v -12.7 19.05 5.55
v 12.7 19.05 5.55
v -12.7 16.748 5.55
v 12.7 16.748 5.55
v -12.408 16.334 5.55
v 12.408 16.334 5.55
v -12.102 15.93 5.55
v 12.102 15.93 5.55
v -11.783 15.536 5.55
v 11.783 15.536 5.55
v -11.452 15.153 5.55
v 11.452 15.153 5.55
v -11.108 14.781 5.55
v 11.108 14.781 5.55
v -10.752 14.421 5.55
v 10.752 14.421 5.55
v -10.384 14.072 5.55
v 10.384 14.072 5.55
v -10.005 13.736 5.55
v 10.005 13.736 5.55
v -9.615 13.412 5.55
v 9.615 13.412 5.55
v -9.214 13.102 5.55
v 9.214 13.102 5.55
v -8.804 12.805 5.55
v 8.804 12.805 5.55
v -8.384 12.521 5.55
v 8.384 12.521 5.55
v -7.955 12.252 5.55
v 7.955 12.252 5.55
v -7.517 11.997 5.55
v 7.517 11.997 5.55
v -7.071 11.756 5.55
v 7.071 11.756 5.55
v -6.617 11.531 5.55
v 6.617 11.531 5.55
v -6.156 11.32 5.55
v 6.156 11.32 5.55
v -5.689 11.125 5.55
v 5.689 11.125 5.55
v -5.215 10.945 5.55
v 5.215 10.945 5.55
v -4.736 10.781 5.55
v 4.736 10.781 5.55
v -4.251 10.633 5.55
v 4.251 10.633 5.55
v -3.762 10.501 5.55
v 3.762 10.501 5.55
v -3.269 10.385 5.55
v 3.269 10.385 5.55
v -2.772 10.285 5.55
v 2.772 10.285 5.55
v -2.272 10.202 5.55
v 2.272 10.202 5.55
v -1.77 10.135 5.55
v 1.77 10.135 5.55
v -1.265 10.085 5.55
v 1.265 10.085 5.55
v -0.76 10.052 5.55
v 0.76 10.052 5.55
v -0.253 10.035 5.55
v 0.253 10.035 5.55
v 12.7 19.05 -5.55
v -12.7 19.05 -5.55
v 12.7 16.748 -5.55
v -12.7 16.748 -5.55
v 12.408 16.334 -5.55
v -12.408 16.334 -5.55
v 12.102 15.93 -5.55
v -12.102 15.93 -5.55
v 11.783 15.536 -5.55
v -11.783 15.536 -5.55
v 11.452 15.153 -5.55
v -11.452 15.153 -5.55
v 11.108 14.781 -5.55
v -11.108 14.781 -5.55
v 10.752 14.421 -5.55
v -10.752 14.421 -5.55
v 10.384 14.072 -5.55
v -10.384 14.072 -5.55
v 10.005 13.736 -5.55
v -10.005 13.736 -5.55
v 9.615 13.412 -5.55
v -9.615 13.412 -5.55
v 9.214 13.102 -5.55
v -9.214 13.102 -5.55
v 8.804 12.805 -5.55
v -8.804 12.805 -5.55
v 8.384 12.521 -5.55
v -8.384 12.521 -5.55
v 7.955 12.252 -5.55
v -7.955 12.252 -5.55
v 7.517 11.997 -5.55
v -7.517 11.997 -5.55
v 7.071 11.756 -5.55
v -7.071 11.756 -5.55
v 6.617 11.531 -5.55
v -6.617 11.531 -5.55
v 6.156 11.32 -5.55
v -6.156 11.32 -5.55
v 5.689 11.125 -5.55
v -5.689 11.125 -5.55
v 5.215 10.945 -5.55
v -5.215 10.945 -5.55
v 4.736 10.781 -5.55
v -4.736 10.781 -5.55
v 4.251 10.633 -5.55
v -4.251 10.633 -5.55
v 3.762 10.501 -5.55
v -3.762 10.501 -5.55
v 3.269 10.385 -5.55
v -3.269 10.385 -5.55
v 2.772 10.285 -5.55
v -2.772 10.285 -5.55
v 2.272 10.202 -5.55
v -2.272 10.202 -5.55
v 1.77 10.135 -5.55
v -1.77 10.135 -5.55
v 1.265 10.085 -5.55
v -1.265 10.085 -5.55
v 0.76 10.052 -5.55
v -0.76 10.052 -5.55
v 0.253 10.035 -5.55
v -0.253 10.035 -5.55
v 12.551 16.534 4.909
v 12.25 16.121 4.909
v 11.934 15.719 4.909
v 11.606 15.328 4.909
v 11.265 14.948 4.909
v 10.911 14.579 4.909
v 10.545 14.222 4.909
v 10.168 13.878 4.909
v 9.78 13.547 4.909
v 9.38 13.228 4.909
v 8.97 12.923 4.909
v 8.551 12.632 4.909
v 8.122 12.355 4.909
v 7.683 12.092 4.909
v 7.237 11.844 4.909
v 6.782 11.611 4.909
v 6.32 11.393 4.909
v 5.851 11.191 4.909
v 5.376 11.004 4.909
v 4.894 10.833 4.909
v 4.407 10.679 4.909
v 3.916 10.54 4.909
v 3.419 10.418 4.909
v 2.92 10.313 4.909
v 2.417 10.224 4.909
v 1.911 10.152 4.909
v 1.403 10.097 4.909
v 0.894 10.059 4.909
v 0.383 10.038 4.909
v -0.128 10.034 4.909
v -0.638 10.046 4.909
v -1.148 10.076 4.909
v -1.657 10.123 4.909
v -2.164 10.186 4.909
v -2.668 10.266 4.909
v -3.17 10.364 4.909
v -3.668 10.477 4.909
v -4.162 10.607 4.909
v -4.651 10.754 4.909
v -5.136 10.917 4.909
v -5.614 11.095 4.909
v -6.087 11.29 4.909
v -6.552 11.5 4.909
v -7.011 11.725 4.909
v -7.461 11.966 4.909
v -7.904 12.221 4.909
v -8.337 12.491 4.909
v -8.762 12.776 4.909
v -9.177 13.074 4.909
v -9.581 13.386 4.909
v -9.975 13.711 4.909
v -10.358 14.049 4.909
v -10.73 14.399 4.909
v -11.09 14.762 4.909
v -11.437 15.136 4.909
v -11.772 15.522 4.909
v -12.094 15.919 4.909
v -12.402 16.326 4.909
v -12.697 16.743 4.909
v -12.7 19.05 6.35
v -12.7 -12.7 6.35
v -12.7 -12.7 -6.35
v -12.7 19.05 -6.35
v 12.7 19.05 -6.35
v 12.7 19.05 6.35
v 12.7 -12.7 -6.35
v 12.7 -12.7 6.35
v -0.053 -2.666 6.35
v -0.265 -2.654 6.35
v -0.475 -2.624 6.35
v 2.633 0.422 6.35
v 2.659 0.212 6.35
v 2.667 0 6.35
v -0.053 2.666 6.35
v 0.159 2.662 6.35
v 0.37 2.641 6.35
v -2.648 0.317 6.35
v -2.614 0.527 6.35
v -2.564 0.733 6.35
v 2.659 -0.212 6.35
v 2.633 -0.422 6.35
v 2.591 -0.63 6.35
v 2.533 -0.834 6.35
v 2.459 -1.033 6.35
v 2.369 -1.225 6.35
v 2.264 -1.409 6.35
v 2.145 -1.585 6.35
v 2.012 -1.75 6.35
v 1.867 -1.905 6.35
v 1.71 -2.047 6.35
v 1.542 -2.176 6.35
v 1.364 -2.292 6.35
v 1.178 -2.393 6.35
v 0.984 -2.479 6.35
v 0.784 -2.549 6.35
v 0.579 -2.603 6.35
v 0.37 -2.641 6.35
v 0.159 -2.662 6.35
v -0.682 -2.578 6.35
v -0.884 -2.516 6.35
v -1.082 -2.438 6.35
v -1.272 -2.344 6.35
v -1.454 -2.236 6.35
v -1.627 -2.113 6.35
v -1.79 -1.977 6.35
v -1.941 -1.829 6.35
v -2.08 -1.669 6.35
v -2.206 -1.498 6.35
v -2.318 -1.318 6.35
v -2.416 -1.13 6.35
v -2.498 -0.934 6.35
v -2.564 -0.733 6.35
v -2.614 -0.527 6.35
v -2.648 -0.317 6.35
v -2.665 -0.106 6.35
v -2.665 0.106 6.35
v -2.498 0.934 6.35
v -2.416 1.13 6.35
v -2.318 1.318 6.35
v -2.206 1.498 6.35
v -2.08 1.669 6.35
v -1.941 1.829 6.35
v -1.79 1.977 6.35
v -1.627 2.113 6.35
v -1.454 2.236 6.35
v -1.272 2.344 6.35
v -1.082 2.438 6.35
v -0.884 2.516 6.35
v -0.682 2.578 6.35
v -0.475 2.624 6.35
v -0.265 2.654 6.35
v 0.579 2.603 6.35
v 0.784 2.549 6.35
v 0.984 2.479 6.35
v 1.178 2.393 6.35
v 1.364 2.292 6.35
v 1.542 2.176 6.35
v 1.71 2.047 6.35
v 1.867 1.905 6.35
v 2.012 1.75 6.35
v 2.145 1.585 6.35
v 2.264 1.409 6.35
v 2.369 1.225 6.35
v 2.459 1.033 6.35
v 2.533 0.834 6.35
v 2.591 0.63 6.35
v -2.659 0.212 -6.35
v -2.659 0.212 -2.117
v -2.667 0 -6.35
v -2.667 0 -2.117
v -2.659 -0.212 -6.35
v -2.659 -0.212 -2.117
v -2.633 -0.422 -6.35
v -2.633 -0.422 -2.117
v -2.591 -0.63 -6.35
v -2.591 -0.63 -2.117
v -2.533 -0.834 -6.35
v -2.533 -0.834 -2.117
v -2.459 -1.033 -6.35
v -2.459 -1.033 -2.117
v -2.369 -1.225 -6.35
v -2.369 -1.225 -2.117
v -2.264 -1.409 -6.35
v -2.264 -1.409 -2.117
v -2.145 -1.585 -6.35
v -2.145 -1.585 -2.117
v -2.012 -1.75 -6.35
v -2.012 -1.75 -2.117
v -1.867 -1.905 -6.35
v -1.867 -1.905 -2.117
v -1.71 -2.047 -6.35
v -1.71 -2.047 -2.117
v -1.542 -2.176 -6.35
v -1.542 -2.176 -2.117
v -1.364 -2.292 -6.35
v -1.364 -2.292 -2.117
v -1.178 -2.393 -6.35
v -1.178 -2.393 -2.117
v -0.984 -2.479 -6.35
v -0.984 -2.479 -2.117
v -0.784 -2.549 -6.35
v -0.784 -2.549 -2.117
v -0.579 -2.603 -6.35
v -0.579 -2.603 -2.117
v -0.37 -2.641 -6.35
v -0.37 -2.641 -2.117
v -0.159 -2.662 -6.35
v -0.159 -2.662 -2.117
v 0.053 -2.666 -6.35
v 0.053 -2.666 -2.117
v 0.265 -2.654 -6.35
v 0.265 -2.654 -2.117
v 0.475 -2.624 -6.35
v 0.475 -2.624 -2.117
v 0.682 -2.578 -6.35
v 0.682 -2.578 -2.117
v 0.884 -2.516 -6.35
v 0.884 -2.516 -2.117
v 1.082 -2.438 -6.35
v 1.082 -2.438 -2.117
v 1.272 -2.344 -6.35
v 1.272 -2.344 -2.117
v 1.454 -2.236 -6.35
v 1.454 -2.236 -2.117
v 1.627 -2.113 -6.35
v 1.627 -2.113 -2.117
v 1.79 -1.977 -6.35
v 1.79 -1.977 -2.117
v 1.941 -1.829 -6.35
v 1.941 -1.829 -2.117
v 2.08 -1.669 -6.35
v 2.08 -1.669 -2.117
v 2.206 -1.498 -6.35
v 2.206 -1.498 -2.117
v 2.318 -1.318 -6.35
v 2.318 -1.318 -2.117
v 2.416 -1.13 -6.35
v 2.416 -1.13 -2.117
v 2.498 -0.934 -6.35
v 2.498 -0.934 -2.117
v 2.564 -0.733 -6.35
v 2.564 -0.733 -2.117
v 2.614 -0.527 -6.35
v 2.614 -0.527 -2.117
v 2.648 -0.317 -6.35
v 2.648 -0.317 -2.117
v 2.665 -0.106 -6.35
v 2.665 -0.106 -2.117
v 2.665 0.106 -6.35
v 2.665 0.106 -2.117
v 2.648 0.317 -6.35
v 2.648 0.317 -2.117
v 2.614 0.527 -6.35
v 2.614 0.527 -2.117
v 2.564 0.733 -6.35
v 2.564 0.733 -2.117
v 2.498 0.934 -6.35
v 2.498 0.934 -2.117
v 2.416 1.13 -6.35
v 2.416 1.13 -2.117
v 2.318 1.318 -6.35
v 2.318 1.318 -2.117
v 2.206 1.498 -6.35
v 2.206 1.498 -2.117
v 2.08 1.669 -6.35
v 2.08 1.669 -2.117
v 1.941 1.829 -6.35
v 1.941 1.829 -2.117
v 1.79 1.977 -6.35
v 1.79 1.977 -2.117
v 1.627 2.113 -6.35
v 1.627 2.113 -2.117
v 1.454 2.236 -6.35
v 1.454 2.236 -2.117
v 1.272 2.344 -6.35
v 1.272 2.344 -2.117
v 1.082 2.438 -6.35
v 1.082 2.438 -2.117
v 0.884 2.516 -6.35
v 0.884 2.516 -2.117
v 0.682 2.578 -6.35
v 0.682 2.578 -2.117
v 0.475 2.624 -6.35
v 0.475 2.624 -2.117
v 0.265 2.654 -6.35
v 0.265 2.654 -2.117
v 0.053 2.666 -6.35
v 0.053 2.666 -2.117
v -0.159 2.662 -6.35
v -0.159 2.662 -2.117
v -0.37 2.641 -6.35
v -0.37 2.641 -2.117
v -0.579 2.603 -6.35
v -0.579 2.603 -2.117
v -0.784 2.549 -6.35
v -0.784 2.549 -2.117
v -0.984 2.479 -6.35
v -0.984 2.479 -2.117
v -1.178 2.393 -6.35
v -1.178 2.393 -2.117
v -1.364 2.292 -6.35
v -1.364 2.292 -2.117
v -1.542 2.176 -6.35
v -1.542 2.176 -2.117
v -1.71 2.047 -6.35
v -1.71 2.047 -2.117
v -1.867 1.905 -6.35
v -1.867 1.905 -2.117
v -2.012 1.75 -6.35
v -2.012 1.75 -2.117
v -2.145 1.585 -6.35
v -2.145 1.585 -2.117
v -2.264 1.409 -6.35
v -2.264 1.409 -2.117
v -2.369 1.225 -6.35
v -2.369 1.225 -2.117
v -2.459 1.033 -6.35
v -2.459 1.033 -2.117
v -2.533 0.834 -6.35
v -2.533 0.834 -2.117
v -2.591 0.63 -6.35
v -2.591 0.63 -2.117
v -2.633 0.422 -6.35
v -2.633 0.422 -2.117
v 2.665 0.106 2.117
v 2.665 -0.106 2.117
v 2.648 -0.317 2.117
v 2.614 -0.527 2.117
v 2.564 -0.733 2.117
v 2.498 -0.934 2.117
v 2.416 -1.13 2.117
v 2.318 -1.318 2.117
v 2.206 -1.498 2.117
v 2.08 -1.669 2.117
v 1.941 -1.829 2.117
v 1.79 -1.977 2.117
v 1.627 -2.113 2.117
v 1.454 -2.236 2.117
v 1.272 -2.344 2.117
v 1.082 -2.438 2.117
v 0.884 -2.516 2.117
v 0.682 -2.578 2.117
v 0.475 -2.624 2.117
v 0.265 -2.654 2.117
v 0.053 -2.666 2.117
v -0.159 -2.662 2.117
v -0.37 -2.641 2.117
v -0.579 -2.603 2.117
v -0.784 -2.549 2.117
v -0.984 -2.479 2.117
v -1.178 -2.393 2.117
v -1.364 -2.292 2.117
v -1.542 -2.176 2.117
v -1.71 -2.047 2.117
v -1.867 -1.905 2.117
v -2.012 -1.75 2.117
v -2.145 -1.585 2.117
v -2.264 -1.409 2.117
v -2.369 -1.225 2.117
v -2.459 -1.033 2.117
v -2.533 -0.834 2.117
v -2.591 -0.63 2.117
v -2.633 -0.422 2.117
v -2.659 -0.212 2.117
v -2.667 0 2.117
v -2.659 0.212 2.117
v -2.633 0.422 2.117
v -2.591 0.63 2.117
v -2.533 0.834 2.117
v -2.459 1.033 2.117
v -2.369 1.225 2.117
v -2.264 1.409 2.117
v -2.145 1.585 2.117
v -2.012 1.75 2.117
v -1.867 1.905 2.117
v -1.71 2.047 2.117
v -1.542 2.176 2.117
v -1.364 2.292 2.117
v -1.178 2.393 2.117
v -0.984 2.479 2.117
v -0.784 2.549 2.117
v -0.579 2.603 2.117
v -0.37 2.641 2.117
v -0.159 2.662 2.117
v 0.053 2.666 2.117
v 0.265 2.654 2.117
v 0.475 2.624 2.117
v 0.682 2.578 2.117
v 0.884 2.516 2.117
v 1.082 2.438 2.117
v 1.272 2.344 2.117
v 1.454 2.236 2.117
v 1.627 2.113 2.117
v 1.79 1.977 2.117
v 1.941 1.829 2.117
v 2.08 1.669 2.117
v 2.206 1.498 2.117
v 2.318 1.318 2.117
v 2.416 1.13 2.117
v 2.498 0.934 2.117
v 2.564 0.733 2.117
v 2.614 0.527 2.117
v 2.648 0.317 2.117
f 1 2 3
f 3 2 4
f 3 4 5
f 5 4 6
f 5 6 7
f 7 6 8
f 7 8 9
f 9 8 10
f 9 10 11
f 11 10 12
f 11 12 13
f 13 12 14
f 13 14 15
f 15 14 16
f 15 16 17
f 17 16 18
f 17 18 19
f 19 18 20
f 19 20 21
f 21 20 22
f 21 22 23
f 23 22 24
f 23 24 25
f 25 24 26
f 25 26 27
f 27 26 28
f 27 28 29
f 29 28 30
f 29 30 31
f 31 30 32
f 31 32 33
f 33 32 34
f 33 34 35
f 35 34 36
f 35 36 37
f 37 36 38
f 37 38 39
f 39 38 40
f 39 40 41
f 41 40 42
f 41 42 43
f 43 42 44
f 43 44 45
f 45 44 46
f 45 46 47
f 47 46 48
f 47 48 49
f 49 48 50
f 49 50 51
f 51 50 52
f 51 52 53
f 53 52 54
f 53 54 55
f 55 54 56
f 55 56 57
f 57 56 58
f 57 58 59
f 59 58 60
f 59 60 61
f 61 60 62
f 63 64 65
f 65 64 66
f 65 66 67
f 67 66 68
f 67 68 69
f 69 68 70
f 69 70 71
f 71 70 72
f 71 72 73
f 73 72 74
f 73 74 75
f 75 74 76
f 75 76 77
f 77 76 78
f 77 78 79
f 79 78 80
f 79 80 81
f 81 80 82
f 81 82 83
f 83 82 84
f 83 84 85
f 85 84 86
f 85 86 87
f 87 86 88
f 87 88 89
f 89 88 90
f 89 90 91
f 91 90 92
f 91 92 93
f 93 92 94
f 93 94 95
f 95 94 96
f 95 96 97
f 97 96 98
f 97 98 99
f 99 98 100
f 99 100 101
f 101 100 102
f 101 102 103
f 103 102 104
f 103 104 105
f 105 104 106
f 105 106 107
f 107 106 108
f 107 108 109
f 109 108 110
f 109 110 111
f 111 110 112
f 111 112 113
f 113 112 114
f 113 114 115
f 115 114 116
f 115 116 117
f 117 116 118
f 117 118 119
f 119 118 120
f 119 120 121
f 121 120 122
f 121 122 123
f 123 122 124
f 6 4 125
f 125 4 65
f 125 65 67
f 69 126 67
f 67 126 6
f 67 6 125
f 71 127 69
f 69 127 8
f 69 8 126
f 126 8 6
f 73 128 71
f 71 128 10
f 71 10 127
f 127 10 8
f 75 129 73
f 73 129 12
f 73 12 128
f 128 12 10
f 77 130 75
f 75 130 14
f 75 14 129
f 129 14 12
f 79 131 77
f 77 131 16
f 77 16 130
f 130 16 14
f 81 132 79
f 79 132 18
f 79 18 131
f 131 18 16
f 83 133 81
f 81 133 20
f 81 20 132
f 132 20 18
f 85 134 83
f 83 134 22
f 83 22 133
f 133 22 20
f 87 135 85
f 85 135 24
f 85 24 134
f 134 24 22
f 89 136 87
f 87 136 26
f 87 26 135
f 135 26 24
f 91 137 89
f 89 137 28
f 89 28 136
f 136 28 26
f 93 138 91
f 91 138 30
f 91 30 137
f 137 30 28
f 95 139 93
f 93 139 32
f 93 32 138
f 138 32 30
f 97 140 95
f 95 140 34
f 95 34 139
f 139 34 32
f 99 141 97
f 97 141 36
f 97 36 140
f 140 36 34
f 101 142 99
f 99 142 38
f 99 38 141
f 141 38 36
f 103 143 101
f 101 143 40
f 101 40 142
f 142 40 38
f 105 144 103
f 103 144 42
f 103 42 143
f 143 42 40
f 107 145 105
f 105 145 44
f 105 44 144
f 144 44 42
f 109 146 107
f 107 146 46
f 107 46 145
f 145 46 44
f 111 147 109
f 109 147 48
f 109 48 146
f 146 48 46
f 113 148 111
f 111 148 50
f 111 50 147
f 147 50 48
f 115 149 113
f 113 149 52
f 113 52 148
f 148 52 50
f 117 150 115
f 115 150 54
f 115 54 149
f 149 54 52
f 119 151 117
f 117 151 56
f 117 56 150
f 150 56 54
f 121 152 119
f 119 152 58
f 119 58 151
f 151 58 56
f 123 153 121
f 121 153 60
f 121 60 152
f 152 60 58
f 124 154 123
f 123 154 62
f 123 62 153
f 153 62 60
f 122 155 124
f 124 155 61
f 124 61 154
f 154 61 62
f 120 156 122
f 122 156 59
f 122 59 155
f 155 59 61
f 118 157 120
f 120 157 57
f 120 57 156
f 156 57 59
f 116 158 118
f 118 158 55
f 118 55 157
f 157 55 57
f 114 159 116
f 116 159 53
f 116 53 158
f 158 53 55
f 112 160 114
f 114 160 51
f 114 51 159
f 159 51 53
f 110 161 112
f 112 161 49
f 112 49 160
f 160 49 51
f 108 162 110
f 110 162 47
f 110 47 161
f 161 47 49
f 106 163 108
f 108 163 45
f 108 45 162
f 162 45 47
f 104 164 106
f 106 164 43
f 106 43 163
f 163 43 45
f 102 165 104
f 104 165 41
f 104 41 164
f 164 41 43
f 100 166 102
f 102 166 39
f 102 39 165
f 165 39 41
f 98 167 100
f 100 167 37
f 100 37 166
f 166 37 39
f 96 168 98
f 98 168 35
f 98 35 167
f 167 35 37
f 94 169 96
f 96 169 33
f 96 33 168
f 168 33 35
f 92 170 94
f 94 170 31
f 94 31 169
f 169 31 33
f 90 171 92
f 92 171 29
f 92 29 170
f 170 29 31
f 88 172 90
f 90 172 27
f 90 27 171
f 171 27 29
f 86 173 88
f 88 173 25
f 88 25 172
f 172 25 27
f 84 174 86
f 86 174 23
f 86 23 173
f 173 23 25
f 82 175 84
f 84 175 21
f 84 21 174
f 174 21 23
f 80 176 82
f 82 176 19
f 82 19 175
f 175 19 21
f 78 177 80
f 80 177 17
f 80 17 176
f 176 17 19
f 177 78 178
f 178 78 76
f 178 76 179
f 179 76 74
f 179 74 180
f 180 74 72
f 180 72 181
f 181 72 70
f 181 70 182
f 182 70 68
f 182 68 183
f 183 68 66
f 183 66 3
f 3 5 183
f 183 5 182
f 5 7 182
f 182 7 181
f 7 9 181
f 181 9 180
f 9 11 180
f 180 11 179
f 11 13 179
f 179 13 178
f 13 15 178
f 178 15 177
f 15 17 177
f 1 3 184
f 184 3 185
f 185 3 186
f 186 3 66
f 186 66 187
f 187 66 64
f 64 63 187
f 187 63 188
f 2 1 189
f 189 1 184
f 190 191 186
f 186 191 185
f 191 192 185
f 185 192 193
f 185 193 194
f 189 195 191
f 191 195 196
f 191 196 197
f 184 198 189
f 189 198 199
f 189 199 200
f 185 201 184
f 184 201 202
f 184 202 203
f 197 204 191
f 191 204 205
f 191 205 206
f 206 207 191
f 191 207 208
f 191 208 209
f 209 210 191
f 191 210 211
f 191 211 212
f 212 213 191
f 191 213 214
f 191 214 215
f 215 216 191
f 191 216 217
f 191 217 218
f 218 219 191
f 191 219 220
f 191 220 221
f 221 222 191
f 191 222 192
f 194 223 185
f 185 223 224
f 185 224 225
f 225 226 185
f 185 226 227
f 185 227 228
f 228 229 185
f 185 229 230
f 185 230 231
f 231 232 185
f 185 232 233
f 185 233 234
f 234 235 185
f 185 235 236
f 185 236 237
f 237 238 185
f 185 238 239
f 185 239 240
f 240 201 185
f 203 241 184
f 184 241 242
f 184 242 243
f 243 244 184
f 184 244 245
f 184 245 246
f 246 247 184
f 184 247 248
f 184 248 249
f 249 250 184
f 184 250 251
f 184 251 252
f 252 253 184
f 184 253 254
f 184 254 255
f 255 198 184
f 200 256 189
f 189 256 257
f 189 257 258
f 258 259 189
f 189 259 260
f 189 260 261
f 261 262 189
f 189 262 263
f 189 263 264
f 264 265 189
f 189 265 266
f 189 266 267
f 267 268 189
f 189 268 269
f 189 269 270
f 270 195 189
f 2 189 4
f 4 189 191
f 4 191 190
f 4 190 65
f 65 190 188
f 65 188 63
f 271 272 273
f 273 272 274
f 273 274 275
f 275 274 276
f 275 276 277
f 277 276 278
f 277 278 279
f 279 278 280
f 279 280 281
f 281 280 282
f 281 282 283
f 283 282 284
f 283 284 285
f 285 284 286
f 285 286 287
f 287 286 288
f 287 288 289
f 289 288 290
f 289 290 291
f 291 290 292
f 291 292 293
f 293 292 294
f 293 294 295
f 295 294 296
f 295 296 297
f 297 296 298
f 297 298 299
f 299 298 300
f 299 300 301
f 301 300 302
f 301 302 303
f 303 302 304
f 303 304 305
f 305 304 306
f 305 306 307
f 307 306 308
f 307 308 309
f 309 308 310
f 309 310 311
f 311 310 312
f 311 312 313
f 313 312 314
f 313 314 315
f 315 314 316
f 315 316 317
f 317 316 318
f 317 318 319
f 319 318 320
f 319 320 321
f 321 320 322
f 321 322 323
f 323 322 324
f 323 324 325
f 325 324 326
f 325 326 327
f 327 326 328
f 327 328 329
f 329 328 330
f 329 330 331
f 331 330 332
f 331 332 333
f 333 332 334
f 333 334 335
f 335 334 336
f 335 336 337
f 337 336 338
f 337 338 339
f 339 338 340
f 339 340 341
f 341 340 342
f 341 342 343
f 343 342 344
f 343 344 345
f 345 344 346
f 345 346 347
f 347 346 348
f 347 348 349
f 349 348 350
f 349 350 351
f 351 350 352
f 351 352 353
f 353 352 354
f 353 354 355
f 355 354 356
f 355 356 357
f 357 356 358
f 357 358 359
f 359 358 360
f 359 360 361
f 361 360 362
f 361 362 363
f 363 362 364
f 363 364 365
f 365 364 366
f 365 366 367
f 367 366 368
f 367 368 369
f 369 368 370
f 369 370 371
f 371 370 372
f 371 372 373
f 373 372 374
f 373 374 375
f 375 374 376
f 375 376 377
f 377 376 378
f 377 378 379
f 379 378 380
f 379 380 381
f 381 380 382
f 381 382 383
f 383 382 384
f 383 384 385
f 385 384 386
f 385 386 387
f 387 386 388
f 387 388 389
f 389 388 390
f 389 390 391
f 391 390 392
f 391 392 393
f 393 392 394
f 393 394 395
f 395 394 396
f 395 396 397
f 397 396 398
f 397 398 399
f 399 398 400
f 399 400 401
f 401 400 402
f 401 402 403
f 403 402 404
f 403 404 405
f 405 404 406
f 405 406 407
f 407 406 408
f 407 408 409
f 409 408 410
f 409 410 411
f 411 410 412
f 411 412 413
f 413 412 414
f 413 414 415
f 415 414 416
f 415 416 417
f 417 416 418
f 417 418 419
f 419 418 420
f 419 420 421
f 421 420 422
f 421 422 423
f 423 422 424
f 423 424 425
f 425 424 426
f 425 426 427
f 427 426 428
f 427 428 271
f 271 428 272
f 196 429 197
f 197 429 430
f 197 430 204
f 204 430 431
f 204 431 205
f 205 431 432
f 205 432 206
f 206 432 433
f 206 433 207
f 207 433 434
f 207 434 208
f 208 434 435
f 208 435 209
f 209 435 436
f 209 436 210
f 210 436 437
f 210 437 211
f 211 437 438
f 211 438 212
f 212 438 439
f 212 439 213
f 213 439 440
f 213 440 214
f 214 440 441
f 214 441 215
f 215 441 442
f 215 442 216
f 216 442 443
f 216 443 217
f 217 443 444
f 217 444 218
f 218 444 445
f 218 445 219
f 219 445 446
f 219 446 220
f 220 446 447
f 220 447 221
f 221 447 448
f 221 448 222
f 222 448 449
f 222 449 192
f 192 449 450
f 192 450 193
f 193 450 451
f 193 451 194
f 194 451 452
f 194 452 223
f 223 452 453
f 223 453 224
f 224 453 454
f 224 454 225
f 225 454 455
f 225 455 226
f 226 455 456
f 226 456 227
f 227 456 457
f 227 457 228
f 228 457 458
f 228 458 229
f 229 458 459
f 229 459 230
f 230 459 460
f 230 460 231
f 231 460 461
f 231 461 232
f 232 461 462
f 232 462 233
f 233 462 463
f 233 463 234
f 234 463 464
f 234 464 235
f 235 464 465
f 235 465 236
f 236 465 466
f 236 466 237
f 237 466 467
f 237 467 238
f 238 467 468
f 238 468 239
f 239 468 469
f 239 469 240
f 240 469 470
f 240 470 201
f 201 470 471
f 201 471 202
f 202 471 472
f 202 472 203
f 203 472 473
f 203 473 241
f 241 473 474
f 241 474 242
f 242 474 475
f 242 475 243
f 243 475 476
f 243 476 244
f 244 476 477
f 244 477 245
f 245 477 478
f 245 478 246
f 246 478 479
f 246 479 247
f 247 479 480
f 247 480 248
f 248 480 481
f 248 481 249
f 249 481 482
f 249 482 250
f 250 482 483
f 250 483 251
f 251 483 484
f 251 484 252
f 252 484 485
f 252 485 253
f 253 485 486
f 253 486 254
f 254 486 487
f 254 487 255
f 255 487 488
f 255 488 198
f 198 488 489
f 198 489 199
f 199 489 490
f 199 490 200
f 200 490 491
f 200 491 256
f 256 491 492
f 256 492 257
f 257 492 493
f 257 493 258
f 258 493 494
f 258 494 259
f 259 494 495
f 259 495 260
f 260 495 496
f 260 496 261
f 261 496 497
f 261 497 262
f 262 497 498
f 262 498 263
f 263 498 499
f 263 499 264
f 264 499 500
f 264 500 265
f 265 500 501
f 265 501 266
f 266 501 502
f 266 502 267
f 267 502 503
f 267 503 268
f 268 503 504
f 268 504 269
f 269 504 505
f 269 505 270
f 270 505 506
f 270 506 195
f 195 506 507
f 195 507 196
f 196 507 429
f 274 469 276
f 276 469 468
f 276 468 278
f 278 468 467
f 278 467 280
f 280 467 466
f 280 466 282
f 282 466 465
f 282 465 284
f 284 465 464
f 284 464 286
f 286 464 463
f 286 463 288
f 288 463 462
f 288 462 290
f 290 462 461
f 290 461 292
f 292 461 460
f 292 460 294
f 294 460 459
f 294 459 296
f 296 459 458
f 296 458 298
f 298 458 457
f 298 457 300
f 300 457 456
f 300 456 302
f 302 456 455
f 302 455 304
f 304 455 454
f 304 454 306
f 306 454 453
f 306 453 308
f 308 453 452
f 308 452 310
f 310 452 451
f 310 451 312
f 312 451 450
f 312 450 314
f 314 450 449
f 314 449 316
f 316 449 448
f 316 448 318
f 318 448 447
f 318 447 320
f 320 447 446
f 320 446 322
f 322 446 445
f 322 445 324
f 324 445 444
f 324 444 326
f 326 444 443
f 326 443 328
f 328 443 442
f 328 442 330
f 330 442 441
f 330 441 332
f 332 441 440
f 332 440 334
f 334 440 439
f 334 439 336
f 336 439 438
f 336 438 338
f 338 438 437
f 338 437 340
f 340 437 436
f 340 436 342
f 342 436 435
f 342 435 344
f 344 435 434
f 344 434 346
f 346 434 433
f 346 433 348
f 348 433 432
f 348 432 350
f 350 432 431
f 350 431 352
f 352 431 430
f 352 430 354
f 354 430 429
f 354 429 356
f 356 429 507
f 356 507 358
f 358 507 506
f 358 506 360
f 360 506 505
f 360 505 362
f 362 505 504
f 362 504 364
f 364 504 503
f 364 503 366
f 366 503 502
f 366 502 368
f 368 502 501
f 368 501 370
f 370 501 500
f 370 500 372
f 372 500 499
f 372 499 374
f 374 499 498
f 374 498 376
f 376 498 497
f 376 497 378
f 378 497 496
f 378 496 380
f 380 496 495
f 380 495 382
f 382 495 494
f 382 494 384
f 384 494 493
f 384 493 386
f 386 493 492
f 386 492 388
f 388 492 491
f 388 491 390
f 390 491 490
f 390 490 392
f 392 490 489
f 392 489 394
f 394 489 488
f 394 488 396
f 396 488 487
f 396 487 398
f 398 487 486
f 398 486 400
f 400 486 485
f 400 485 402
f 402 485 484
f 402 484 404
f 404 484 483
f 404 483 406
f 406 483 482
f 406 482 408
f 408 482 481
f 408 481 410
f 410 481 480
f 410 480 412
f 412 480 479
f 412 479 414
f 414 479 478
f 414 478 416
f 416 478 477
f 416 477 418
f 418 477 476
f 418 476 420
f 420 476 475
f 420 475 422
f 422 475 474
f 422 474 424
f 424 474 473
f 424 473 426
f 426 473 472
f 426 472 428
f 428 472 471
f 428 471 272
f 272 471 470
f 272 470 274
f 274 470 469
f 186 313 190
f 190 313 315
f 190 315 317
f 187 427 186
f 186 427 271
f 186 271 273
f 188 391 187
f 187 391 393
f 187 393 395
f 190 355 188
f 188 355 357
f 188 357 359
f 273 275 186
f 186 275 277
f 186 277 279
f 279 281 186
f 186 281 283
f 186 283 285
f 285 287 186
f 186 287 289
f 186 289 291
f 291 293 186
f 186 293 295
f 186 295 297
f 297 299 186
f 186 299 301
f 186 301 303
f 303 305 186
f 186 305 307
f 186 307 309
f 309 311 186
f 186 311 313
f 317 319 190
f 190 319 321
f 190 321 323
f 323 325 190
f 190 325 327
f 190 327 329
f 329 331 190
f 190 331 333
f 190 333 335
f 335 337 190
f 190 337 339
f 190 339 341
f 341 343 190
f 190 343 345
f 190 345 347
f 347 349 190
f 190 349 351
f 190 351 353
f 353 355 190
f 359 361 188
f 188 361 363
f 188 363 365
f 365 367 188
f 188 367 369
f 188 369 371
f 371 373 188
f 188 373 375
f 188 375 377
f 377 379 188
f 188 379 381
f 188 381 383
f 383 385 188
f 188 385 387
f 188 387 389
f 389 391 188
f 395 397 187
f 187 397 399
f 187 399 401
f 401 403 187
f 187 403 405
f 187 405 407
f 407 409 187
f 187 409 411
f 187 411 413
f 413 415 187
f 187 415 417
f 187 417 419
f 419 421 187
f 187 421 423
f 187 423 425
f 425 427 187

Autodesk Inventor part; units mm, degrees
ref_plane "YZ Plane" through (0, 0, 0) normal (1, 0, 0) x (0, 1, 0)
ref_plane "XZ Plane" through (0, 0, 0) normal (0, 1, 0) x (-1, 0, 0)
ref_plane "XY Plane" through (0, 0, 0) normal (0, 0, 1) x (1, 0, 0)
sketch "Sketch3" plane through (0, 0, 0) normal (0, 0, 1) x (1, 0, 0)
  line L0 (-12.7, -19.05) -> (12.7, -19.05)
  line L1 (12.7, -19.05) -> (12.7, 19.05)
  line L2 (12.7, 19.05) -> (-12.7, 19.05)
  line L3 (-12.7, 19.05) -> (-12.7, -19.05)
  line L4 (-12.7, -19.05) -> (12.7, 19.05) construction
  line L5 (12.7, -19.05) -> (-12.7, 19.05) construction
  point P0 (0, 0)
  dimension "d0" = 25.4
  dimension "d1" = 38.1
extrude "Extrusion1" add sketch "Sketch3" along normal mid plane 12.7
sketch "Sketch4" plane through (0, 0, 6.35) normal (0, 0, 1) x (1, 0, 0)
  circle A0 centre (0, 0) radius 2.667
  dimension "d4" = 5.334
extrude "Extrusion2" cut sketch "Sketch4" against normal through all
sketch "Sketch5" plane through (-12.7, -19.05, 6.35) normal (-1, 0, 0) x (0, 0, 1)
  line L0 (3.175, 6.35) -> (50.8, 6.35) projected
  line L1 (-12.7, 38.1) -> (-12.7, 0) projected
  line L2 (0, 0) -> (0, 38.1) projected
  line L3 (-12.7, 0) -> (0, 0)
  line L4 (0, 0) -> (0, 6.35)
  line L5 (0, 6.35) -> (-12.7, 6.35)
  line L6 (-12.7, 6.35) -> (-12.7, 0)
  point P0 (-6.35, 19.05)
  point P1 (-12.7, 6.35)
  dimension "d9" = 6.35
extrude "Extrusion3" cut sketch "Sketch5" against normal through all
sketch "Sketch6" plane through (0, 0, 0) normal (0, 0, 1) x (1, 0, 0)
  circle A0 centre (0, 25.4) radius 15.367
  point P0 (0, 0)
  dimension "d10" = 25.4
  dimension "d13" = 30.734
extrude "Extrusion4" cut sketch "Sketch6" along normal mid plane 11.0998
properties part number "preventWireJumping" material "PBT Plastic"
